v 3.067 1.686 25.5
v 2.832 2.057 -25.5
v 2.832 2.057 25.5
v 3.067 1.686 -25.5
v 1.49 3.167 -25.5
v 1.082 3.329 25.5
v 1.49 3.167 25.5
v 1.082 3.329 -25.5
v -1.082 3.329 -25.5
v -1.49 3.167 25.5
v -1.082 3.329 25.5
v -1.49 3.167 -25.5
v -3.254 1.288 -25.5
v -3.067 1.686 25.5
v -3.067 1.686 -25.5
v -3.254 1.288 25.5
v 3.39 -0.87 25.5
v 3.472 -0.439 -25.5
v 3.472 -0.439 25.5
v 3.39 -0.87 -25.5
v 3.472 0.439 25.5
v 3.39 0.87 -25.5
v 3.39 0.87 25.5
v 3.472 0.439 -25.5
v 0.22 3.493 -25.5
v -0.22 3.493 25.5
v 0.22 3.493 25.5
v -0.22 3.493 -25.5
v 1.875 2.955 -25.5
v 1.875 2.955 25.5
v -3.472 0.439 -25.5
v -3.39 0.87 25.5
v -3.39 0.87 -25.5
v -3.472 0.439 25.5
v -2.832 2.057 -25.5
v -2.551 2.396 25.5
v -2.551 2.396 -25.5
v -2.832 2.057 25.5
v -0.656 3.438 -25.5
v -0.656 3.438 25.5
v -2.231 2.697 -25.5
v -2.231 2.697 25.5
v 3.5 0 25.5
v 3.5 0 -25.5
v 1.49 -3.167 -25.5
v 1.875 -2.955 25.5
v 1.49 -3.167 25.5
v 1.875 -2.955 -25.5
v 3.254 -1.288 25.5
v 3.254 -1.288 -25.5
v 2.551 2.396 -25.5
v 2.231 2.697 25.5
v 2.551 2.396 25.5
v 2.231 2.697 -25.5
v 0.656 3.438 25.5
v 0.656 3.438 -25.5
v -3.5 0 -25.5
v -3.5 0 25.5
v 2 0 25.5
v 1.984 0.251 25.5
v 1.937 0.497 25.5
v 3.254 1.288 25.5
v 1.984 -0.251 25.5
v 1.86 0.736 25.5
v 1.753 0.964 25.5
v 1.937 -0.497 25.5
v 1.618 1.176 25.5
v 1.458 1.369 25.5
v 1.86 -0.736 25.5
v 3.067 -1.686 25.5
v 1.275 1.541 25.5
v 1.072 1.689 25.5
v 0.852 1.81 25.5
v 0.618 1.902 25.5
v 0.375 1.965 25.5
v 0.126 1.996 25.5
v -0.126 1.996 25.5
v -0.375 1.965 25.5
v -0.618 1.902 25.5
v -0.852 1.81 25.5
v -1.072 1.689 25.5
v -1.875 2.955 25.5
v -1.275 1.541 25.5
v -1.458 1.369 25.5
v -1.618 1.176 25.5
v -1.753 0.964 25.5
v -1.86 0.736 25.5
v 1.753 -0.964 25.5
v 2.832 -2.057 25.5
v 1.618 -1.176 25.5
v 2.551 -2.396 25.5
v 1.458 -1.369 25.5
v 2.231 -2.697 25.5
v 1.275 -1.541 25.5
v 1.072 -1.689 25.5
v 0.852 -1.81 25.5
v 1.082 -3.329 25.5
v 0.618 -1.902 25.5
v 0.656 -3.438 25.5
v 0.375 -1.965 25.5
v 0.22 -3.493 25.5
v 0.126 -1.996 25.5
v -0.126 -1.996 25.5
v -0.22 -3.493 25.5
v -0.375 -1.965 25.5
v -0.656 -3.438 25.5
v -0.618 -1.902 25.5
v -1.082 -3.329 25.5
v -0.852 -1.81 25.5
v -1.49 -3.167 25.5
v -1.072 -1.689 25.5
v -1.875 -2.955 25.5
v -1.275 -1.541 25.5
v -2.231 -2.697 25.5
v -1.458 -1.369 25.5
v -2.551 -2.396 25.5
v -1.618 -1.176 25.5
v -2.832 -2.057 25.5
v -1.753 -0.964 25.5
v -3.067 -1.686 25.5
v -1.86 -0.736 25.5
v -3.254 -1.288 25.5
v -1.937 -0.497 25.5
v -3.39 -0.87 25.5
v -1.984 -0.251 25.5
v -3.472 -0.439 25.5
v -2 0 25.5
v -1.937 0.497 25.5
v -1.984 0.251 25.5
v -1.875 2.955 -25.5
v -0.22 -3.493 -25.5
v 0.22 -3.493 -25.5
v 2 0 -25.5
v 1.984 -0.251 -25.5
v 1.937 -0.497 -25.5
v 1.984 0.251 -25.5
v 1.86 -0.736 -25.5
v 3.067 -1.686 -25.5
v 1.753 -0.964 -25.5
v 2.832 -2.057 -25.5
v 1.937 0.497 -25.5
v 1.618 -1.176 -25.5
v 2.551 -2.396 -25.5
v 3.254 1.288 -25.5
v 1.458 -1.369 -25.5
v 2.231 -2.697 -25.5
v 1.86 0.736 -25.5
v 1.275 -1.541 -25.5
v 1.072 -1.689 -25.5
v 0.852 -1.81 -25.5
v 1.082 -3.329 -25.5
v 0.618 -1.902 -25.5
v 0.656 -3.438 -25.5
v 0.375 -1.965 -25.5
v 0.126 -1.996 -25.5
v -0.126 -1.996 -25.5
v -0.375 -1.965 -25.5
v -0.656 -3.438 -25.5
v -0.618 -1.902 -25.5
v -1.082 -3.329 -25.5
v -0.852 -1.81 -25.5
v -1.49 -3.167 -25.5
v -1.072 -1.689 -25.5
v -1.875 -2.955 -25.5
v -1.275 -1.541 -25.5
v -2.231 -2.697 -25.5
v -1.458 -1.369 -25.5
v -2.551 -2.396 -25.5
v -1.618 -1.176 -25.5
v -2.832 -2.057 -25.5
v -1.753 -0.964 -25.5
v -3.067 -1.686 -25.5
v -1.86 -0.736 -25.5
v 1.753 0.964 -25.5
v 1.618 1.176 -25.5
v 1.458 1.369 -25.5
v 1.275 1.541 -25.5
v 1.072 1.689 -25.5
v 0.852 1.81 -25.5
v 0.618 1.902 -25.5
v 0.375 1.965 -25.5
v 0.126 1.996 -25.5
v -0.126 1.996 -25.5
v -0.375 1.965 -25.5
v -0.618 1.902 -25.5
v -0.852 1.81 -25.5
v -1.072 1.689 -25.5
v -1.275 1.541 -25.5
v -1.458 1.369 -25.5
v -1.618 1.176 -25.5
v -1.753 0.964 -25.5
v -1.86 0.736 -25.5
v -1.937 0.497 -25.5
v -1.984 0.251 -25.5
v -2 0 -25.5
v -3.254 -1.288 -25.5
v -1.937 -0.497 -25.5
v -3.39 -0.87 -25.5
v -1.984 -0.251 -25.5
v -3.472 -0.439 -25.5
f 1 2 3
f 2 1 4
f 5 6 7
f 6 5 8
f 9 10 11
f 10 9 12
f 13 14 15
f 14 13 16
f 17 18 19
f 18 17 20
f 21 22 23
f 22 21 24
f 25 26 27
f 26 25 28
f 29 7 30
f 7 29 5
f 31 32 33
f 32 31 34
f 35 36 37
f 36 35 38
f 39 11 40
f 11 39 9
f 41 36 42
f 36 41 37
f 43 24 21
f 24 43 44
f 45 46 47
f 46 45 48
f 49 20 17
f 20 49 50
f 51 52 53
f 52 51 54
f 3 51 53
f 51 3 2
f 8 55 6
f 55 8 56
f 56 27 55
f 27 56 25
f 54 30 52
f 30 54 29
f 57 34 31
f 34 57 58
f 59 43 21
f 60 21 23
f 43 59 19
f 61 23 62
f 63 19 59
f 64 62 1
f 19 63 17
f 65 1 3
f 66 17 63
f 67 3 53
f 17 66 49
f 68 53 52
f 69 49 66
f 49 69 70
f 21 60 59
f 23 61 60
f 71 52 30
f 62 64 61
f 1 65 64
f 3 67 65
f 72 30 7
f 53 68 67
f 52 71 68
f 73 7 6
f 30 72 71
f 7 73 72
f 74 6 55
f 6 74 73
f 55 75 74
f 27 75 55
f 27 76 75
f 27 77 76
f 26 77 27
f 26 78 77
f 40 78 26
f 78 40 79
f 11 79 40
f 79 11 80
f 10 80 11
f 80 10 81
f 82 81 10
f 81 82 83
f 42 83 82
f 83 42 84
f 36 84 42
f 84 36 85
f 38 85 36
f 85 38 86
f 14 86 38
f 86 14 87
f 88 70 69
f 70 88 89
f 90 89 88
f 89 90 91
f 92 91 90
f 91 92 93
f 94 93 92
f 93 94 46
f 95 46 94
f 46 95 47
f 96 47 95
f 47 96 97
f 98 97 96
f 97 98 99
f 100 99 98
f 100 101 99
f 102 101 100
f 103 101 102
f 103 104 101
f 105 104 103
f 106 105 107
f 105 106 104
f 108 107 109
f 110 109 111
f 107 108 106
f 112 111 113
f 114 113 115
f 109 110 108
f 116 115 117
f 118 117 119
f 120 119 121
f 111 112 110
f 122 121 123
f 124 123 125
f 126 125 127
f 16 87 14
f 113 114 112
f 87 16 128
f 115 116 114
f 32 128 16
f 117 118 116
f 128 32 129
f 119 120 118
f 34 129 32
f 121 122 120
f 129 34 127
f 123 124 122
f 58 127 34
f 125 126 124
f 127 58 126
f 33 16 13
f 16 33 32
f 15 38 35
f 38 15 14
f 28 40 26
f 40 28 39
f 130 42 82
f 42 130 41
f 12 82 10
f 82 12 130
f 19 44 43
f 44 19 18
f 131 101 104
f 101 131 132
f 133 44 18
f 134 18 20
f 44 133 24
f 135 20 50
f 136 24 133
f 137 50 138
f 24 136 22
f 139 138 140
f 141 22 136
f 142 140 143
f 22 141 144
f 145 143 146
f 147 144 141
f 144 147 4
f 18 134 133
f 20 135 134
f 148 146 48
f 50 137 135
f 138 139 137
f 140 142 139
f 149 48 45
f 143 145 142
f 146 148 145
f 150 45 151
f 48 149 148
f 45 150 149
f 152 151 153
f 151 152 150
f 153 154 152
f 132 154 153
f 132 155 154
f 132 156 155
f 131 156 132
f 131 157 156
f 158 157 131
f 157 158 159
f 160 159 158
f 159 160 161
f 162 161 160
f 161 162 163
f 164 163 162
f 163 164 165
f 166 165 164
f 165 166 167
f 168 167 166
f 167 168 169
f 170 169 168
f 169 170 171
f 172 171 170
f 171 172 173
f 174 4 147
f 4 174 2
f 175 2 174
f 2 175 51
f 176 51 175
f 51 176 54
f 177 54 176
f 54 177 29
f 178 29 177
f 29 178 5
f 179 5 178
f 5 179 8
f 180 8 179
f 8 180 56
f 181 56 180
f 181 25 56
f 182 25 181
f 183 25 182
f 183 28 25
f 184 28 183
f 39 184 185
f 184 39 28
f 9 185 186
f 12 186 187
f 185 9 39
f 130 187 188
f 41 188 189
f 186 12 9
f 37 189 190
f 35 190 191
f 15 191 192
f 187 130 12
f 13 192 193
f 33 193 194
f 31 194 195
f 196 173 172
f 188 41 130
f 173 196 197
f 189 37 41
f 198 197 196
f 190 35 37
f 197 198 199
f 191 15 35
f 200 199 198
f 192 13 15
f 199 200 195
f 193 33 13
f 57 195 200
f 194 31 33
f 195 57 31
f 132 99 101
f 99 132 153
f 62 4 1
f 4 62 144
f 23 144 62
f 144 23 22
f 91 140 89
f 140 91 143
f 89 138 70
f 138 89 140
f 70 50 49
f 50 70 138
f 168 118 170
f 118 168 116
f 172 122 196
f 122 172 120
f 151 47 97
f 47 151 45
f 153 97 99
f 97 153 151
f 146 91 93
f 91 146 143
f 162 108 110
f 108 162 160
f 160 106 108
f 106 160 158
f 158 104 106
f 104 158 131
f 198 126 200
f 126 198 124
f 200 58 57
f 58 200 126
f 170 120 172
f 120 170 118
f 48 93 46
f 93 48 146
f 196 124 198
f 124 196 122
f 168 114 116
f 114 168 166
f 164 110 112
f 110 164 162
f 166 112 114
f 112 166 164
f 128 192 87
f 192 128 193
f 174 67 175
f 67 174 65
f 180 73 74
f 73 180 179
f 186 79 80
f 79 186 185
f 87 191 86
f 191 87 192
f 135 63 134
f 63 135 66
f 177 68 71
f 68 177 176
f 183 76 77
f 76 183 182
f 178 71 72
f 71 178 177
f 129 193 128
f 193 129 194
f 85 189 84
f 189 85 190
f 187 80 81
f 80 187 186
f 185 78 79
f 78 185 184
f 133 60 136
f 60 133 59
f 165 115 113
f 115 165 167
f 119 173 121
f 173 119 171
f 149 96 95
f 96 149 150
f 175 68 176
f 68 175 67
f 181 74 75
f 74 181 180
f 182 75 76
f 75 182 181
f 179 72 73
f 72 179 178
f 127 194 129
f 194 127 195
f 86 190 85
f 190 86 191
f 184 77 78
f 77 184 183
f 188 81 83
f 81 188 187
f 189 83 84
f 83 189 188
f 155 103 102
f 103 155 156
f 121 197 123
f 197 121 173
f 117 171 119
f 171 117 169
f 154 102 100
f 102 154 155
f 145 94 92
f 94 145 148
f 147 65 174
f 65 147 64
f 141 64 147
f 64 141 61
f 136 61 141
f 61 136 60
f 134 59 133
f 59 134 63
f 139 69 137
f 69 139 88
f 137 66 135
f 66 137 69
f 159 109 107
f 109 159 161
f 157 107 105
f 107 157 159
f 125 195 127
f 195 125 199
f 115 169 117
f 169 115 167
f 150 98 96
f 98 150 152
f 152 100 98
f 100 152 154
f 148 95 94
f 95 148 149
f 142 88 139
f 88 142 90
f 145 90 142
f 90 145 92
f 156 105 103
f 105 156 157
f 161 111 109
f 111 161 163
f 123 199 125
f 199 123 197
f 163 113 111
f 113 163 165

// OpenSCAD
$fn = 50;


difference() {
	union() {
		translate(v = [0, 0, -25.5000000000]) {
			cylinder(h = 51, r = 3.5000000000);
		}
	}
	union() {
		translate(v = [0, 0, -100.0000000000]) {
			cylinder(h = 200, r = 2);
		}
	}
}
